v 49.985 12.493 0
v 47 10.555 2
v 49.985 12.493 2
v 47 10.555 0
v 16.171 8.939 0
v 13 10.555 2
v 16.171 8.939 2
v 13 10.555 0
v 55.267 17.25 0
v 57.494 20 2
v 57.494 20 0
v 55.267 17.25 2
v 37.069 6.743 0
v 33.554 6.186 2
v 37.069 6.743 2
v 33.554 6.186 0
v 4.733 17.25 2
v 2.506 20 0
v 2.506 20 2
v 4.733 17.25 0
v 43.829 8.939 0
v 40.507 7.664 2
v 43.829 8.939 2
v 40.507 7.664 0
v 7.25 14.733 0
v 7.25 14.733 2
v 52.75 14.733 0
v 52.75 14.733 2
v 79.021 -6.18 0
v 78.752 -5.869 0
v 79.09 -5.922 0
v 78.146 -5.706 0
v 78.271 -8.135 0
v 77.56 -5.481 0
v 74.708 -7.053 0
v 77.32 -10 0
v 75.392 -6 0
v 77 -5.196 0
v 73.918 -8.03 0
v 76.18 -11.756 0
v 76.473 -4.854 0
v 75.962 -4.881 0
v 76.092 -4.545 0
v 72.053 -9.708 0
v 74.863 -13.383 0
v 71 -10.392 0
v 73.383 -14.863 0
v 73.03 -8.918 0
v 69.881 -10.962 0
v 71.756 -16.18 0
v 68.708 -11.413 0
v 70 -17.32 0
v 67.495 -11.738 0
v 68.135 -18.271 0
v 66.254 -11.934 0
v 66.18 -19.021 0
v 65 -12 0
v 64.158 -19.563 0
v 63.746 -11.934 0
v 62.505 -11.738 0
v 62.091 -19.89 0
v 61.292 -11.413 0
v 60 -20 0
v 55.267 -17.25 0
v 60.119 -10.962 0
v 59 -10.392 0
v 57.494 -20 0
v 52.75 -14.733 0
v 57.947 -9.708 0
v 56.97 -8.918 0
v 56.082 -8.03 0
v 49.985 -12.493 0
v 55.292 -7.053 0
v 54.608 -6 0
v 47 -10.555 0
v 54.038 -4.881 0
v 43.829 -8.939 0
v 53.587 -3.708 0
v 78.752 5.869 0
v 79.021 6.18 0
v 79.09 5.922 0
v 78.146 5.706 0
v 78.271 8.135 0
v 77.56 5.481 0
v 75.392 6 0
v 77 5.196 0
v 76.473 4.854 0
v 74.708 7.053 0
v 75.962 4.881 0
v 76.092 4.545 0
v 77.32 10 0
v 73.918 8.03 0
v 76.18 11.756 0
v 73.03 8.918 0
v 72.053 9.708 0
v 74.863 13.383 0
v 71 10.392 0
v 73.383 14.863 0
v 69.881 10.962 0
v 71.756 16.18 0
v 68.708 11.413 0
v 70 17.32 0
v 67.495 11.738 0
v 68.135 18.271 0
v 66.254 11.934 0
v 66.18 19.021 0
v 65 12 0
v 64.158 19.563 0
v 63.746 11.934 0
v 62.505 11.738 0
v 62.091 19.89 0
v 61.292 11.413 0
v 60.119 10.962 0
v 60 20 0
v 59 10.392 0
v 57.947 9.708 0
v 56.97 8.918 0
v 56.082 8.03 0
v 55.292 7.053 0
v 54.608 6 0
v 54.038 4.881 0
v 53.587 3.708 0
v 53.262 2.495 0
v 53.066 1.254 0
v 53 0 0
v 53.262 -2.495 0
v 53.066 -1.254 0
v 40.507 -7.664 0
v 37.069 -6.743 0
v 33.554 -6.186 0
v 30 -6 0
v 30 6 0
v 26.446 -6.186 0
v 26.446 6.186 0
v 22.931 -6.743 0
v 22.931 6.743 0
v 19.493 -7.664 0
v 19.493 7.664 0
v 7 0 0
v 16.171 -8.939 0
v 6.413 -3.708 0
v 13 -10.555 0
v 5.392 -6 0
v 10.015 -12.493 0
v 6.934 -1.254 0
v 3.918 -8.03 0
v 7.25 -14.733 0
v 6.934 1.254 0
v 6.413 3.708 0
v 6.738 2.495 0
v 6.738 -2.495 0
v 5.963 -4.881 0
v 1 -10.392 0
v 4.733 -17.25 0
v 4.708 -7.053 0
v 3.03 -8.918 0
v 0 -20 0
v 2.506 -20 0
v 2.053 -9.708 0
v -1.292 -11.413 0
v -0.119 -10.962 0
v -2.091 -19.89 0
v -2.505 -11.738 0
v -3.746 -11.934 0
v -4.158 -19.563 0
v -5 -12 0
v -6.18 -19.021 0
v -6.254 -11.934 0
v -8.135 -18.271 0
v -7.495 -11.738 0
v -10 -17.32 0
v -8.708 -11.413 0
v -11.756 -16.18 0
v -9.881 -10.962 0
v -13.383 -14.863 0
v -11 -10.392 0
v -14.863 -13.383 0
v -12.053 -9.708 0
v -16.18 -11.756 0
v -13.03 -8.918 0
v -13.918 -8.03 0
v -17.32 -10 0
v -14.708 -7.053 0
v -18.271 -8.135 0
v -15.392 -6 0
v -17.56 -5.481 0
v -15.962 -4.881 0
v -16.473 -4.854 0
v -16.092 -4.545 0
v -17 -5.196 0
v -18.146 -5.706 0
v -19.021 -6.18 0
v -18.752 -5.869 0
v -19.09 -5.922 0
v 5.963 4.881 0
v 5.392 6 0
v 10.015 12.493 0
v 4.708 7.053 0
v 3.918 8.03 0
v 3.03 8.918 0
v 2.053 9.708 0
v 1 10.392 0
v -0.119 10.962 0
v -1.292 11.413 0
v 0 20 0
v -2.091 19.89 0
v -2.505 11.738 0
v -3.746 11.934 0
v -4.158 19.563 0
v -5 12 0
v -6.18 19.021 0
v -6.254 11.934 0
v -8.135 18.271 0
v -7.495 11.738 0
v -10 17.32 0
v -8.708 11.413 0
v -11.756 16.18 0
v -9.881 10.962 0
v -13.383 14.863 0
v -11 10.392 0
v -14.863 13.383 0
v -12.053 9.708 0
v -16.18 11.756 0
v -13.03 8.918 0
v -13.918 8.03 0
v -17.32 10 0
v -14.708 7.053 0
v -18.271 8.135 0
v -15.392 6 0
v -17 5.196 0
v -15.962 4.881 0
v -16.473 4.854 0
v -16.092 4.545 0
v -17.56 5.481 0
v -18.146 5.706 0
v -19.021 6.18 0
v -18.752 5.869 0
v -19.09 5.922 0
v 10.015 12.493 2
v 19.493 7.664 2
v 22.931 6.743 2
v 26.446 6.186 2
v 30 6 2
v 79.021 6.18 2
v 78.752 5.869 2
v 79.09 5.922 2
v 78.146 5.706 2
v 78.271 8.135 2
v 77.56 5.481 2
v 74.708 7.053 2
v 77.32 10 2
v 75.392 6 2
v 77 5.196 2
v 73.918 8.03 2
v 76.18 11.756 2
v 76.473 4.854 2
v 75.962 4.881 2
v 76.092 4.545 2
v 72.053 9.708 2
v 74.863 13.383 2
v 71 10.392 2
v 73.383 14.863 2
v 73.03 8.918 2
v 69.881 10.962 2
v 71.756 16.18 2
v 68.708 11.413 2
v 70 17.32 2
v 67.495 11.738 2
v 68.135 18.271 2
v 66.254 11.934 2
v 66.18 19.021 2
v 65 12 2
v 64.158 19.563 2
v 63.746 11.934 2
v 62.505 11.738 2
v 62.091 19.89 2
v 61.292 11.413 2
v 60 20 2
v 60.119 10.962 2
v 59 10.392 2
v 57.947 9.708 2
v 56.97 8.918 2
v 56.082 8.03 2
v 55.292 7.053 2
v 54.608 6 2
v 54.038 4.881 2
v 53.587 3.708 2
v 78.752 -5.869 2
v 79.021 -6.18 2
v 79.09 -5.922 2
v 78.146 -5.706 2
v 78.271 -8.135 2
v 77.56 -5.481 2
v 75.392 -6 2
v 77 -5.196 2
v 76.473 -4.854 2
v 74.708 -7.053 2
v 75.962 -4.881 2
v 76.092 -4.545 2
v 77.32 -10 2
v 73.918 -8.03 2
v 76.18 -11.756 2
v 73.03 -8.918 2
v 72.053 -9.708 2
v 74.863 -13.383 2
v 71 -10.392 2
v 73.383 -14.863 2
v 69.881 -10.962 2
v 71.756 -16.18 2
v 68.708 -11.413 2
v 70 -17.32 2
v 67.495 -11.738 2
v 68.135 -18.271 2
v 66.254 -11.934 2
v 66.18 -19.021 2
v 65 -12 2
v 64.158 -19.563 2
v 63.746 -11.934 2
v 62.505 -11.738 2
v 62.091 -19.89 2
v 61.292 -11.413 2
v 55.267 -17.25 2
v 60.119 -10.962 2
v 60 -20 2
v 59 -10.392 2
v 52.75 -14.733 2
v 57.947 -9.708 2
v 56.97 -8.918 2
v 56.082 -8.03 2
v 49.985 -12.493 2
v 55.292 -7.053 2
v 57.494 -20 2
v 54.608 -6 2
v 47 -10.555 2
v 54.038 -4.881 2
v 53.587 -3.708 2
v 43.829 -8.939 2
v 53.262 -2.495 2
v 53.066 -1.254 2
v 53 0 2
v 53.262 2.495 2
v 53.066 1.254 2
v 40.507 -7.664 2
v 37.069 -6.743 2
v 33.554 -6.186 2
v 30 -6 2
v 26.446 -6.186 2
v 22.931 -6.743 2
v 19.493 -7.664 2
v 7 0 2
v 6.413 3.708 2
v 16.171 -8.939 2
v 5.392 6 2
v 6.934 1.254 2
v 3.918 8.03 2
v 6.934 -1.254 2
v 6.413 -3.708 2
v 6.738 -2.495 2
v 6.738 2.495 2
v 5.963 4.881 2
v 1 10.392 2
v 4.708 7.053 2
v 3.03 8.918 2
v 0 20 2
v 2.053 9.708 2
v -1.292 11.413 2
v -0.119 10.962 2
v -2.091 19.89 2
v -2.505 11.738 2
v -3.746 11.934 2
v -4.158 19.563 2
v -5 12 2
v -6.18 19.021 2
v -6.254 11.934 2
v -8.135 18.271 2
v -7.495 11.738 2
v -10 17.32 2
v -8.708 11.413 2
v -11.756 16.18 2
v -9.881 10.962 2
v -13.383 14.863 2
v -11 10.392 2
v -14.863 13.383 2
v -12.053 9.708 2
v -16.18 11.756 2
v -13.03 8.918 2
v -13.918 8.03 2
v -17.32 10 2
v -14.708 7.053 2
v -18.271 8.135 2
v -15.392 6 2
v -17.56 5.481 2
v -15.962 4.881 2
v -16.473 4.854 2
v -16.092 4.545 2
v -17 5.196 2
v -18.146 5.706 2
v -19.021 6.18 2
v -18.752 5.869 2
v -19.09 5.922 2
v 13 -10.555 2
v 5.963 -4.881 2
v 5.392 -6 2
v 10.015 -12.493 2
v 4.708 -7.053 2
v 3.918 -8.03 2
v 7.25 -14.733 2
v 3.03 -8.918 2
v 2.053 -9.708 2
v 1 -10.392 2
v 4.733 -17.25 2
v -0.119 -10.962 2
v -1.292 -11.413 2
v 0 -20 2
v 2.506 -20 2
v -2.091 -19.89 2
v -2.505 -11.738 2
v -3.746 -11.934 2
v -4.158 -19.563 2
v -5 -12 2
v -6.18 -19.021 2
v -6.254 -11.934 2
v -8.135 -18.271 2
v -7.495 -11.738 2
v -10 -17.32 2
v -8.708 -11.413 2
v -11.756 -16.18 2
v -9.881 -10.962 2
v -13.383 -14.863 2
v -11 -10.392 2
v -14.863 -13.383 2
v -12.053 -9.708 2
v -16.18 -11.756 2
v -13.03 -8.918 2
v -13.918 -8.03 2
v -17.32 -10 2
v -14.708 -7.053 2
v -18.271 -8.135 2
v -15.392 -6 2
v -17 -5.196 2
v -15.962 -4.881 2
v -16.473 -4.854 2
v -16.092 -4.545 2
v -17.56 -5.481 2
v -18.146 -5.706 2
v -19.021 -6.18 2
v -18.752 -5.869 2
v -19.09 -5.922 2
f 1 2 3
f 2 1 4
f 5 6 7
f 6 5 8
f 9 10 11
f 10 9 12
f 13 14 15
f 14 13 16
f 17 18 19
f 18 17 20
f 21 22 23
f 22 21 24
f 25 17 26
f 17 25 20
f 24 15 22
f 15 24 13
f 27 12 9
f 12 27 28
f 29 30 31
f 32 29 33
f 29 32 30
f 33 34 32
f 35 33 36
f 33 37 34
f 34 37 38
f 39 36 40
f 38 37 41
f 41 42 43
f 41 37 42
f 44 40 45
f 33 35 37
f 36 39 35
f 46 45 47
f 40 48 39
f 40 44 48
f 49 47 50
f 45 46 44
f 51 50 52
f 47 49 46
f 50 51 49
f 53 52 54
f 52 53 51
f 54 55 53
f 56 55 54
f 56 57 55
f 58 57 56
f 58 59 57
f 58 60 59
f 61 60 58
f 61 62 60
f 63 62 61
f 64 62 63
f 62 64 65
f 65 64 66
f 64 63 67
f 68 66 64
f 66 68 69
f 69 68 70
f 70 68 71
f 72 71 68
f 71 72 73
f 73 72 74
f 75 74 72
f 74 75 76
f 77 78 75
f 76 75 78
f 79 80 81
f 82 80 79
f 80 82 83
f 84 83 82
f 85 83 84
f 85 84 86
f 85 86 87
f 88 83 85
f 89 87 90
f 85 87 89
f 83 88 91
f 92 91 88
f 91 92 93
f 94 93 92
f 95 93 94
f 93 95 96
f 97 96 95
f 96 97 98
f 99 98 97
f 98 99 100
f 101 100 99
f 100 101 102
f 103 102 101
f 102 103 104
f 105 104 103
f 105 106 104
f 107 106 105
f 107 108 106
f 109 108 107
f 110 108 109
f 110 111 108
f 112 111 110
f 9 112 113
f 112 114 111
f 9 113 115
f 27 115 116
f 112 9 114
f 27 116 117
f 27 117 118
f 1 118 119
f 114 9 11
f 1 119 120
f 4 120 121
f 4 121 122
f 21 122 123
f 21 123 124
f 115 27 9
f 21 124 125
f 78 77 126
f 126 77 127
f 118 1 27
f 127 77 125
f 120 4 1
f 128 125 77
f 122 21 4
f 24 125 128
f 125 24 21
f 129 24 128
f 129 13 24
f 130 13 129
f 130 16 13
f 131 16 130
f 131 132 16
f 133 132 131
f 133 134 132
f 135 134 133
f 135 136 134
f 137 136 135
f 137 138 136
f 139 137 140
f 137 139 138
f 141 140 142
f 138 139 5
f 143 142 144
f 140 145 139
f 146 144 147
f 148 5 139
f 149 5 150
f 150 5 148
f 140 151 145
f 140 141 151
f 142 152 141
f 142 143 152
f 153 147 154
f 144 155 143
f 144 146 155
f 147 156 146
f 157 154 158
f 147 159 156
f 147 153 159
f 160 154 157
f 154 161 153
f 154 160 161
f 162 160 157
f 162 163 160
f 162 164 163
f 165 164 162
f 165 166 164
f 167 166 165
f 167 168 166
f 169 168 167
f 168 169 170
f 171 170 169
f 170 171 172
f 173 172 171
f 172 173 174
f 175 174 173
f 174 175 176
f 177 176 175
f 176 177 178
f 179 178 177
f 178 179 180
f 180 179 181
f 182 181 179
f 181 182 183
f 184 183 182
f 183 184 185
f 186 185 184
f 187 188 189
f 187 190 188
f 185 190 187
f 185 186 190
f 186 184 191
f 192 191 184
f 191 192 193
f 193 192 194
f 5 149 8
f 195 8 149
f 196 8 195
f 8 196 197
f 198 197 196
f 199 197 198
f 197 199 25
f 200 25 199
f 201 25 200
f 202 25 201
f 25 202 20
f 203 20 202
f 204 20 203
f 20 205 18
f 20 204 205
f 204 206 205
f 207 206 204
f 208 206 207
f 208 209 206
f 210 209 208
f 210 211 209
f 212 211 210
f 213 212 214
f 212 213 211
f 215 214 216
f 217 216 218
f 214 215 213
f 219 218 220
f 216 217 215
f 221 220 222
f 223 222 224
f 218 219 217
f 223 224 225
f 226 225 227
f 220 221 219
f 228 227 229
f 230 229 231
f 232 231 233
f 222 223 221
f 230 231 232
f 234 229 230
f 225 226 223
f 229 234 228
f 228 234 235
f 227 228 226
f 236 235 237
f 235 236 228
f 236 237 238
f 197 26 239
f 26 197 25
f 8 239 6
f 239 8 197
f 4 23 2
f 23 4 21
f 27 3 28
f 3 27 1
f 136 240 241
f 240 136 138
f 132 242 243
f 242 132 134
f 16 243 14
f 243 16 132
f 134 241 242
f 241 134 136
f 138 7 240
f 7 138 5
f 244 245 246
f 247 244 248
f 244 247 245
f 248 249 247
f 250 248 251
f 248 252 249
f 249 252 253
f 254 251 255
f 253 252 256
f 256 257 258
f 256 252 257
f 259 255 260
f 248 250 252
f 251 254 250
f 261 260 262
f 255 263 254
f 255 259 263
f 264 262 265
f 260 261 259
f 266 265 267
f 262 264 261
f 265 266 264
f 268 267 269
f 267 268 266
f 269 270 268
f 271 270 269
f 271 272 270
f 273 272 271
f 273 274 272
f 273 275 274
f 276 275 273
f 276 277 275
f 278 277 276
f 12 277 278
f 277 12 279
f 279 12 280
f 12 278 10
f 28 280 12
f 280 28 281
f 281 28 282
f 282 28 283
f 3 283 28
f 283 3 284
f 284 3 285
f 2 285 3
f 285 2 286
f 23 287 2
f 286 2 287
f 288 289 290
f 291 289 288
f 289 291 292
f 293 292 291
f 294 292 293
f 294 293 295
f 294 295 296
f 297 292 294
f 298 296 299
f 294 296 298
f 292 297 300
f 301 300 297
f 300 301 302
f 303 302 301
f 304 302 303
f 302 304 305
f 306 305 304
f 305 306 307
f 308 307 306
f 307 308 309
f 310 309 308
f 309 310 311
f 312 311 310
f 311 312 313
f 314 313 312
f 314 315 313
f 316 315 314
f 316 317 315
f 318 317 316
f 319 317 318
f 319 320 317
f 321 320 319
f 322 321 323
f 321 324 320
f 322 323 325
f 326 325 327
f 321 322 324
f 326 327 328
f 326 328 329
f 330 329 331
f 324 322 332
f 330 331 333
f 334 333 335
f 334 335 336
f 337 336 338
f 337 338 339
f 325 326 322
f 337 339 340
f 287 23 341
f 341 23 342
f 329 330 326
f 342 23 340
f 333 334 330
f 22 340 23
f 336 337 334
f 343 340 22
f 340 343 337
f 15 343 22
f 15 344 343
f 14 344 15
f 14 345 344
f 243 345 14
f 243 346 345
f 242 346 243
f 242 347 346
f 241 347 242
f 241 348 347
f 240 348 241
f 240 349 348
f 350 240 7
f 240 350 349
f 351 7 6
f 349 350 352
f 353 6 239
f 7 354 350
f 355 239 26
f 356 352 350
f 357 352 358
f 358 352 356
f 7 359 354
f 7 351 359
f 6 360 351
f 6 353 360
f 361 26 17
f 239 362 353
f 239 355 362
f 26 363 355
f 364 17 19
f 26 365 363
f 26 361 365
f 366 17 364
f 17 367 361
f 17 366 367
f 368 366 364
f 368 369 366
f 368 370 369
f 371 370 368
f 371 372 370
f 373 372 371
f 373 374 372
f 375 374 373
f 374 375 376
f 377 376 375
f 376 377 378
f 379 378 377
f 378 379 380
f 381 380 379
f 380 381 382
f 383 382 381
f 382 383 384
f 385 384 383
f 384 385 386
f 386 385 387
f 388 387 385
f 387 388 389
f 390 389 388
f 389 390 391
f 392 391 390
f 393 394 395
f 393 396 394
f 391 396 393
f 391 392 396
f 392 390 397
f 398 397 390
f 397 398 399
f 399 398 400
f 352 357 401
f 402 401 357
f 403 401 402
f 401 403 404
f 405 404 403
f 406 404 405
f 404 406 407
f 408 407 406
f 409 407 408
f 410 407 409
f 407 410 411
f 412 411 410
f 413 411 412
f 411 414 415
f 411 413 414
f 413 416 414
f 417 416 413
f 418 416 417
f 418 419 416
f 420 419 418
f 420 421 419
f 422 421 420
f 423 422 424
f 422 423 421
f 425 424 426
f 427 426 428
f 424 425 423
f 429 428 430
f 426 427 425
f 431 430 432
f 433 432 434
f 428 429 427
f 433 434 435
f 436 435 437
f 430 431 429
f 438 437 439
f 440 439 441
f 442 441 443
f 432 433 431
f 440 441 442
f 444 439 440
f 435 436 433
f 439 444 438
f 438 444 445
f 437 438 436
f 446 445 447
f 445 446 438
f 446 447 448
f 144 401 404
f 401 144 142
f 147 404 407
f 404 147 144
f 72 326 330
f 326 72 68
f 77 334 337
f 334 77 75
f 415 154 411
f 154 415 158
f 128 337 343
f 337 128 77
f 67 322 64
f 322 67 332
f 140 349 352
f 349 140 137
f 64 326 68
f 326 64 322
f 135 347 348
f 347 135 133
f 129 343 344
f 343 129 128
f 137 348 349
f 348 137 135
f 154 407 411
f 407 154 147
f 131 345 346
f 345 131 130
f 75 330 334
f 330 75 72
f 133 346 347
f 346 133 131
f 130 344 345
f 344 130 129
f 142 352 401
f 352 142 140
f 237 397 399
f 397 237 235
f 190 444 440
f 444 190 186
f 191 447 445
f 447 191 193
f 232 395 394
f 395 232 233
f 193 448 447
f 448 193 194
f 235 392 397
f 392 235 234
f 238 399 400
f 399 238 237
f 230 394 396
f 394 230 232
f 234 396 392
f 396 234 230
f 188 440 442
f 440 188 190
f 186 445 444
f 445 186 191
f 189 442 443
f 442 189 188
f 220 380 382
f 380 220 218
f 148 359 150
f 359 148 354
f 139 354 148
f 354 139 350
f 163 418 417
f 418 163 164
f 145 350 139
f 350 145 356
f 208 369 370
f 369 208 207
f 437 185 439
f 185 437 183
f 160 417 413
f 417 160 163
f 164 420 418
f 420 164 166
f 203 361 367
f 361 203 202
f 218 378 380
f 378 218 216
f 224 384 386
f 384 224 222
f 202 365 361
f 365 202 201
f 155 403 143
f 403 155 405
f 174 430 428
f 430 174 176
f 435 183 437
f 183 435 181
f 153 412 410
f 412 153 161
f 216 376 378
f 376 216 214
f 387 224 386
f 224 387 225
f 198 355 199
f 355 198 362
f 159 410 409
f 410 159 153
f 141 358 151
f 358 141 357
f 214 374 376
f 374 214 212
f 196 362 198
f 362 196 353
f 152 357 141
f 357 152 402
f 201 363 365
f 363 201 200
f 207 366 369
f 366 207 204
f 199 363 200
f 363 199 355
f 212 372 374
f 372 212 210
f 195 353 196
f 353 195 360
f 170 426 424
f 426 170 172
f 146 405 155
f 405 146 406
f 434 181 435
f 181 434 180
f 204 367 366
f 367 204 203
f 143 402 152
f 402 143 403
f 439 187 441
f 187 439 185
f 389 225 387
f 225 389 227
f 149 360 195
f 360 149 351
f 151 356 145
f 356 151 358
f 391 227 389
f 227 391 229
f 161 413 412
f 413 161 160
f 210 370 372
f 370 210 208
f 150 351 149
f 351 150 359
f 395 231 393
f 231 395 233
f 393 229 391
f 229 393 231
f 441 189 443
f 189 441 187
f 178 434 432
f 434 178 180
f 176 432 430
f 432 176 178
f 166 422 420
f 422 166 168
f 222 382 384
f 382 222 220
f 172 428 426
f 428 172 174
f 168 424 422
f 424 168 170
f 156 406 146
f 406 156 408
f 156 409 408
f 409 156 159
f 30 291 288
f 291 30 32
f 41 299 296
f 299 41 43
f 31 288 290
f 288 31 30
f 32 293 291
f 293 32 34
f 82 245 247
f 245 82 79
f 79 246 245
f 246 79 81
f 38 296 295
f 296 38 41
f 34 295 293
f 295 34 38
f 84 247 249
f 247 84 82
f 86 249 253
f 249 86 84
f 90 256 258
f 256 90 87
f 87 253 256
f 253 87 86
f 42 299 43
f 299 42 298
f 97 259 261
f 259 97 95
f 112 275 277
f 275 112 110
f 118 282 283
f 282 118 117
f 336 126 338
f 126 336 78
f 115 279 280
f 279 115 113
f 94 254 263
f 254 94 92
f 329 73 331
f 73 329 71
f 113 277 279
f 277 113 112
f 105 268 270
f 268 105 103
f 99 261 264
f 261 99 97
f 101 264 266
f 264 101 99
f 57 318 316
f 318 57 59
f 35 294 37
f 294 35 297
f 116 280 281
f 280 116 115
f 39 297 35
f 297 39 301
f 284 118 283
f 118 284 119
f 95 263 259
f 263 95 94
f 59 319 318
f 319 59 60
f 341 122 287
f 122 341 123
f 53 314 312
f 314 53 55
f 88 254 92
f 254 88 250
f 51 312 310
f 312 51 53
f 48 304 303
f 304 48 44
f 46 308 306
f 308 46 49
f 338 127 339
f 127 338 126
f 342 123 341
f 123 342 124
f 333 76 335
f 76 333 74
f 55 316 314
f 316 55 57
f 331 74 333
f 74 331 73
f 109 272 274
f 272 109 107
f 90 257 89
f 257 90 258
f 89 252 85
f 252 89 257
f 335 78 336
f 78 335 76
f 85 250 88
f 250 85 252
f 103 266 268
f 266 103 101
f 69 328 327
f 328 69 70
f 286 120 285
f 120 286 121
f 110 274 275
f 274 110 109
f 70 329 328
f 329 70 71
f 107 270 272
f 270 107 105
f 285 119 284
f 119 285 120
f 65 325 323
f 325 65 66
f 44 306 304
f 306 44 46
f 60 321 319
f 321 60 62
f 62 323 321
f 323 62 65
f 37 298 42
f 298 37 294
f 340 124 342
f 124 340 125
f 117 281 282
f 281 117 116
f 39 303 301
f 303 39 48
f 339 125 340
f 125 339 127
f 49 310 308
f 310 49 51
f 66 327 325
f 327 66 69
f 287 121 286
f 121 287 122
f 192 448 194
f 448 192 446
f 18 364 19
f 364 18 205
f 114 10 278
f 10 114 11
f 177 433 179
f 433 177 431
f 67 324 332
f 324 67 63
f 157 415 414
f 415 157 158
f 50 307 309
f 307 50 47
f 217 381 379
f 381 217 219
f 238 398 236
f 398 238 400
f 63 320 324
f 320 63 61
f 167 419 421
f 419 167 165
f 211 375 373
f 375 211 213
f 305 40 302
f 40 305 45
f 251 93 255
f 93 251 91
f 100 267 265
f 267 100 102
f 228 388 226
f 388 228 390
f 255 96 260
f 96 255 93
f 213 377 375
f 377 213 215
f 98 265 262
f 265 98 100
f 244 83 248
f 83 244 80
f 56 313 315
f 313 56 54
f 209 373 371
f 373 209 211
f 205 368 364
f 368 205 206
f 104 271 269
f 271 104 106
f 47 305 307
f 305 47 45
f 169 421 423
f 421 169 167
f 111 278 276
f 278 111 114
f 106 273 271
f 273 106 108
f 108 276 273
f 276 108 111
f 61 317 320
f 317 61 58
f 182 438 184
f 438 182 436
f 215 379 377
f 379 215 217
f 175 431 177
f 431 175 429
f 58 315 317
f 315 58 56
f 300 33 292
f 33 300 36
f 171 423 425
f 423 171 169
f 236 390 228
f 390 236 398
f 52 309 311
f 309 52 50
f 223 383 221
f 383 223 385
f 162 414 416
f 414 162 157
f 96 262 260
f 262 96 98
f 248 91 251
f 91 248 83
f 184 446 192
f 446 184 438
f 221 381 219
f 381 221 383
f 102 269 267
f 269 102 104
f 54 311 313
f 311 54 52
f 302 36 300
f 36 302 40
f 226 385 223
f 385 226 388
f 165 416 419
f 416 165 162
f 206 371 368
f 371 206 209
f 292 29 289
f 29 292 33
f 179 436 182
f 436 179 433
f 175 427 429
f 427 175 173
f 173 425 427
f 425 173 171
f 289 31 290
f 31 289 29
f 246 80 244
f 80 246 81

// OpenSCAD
/*
  I hate it to undo my cables..
*/


QUALITY = 60;
THICKNESS = 2;
RADIUS = 20;
CUT = 14;

module clip(){
  hull(){
    cylinder(h=THICKNESS, r=RADIUS, $fn=QUALITY);
    translate([60,0,0])cylinder(h=THICKNESS, r=RADIUS, $fn=QUALITY);
  }
}

module cutout(){
  color("red")translate([30,40,0])cylinder(h=THICKNESS, r=RADIUS+CUT, $fn=QUALITY);
  color("red")translate([30,-40,0])cylinder(h=THICKNESS, r=RADIUS+CUT, $fn=QUALITY);
  color("red")translate([-20,0,0])cylinder(h=THICKNESS, r=RADIUS-CUT, $fn=QUALITY);
  color("red")translate([-5,0,0])cylinder(h=THICKNESS, r=RADIUS-8, $fn=QUALITY);
  color("red")translate([80,0,0])cylinder(h=THICKNESS, r=RADIUS-CUT, $fn=QUALITY);
  color("red")translate([65,0,0])cylinder(h=THICKNESS, r=RADIUS-8, $fn=QUALITY);
}

// RENDER
module render () {
  difference(){
    clip();
    cutout();
  }
}
render();
